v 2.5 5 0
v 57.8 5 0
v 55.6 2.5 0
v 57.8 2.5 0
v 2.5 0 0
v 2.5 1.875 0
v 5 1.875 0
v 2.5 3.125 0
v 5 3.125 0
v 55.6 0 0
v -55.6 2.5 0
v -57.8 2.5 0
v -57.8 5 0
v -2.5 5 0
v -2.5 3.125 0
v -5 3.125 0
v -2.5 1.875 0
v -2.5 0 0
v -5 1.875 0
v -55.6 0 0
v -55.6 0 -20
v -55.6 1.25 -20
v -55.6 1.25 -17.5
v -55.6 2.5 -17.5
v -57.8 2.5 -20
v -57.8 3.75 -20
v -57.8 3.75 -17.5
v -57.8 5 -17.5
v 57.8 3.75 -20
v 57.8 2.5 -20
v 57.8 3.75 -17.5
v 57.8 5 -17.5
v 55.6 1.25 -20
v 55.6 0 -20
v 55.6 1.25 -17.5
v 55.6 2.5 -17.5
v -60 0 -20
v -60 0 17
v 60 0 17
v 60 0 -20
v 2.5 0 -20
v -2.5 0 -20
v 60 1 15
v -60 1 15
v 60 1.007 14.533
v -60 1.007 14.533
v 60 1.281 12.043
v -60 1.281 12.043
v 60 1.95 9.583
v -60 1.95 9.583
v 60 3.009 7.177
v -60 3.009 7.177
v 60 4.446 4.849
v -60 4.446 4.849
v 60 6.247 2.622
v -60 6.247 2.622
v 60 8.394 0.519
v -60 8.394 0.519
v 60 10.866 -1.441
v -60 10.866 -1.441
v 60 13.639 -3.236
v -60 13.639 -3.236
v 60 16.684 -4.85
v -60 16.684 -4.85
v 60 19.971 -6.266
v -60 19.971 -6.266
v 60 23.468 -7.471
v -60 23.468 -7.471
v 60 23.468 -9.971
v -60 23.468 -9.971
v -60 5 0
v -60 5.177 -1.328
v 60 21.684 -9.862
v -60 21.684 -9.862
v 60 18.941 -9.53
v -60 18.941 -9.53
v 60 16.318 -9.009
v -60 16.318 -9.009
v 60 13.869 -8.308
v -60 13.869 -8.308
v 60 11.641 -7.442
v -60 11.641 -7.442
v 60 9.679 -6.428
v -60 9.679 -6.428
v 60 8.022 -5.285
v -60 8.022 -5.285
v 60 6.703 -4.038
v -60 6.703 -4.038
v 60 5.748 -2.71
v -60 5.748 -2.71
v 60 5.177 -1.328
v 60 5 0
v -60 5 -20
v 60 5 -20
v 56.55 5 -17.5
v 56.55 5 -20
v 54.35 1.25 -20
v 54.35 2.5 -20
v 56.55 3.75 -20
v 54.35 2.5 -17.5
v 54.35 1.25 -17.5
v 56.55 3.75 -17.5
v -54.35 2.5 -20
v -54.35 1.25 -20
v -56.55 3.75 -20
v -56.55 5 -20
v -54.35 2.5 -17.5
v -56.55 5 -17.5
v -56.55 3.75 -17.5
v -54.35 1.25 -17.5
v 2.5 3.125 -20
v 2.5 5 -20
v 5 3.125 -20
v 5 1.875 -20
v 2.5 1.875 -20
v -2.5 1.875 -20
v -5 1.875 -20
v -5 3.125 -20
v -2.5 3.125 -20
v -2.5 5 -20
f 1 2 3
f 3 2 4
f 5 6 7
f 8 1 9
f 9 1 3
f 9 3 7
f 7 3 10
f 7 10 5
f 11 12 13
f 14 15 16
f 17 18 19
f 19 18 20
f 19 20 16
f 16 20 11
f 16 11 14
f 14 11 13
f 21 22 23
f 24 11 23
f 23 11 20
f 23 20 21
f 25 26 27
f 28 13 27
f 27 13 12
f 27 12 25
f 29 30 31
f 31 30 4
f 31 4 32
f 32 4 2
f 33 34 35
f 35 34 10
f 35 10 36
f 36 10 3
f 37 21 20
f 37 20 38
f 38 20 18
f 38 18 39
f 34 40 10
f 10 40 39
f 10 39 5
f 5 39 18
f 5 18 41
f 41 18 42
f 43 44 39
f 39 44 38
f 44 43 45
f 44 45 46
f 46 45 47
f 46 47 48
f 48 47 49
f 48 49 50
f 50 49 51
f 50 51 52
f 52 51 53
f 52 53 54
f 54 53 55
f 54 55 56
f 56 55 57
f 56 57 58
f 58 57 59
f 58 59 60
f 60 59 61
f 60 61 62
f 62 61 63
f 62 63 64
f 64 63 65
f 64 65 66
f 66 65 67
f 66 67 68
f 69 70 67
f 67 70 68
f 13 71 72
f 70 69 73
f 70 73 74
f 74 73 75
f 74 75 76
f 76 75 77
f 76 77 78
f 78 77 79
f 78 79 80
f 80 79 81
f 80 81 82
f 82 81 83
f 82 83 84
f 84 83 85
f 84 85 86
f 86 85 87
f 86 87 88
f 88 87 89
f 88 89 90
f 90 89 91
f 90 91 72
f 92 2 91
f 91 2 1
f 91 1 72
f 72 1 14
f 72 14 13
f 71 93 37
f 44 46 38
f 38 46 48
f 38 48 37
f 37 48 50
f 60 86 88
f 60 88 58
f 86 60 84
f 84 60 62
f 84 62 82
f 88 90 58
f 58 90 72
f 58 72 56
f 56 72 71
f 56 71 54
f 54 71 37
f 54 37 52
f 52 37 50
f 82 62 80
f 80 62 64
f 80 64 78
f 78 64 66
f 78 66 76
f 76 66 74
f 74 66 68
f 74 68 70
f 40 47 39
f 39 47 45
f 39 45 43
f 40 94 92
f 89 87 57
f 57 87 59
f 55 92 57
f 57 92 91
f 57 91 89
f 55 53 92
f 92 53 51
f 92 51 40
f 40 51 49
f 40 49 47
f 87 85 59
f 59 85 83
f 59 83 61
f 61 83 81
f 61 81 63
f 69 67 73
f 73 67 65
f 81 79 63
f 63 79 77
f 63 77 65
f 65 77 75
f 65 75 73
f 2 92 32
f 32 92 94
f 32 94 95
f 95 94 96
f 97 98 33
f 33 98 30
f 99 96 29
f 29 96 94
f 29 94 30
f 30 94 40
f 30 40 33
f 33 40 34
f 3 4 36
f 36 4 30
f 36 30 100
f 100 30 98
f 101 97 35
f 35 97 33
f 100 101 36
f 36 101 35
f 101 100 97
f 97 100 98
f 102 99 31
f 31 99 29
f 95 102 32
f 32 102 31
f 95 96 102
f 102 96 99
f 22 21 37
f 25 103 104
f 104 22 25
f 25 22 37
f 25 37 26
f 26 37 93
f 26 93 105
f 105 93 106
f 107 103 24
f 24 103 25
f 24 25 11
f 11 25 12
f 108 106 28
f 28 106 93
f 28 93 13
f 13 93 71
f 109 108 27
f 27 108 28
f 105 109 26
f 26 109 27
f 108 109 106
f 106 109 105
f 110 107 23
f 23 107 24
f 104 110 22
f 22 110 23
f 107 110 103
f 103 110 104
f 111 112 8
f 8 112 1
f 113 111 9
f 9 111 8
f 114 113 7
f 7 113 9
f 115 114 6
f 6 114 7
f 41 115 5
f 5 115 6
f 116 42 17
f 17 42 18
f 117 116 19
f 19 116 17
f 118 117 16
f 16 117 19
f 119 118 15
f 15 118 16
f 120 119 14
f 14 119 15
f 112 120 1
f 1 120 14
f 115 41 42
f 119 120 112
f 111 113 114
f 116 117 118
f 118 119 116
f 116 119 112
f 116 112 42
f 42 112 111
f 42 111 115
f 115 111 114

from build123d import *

# Parameters (mm, degrees)
CUCHILLA_SALIENTE_DEPTH                  = 60
CUCHILLA_SALIENTE_DEPTH_BACK             = 60
ENCAJE_CUCHILLA_LATERAL_CROQUIS_1_W      = 20
ENCAJE_CUCHILLA_LATERAL_CROQUIS_1_H      = 5
ENCAJE_CUCHILLA_LATERAL_SALIENTE_1_DEPTH = 2.2
ENCAJE_CUCHILLA_LATERAL_CROQUIS_2_W      = 20
ENCAJE_CUCHILLA_LATERAL_CROQUIS_2_H      = 2.5
ENCAJE_CUCHILLA_LATERAL_SALIENTE_2_DEPTH = 2.2
ENCAJE_CUCHILLA_LATERAL_CROQUIS_3_W      = 2.5
ENCAJE_CUCHILLA_LATERAL_CROQUIS_3_H      = 1.25
ENCAJE_CUCHILLA_LATERAL_SALIENTE_3_DEPTH = 1.25
ENCAJE_CUCHILLA_LATERAL_CROQUIS_4_W      = 2.5
ENCAJE_CUCHILLA_LATERAL_CROQUIS_4_H      = 1.25
ENCAJE_CUCHILLA_LATERAL_SALIENTE_4_DEPTH = 1.25
ENCAJE_CUCHILLA_LATERAL_CROQUIS_5_W      = 20
ENCAJE_CUCHILLA_LATERAL_CROQUIS_5_H      = 5
ENCAJE_CUCHILLA_LATERAL_SALIENTE_5_DEPTH = 2.2
ENCAJE_CUCHILLA_LATERAL_CROQUIS_6_W      = 20
ENCAJE_CUCHILLA_LATERAL_CROQUIS_6_H      = 2.5
ENCAJE_CUCHILLA_LATERAL_SALIENTE_6_DEPTH = 2.2
ENCAJE_CUCHILLA_LATERAL_CROQUIS_7_W      = 2.5
ENCAJE_CUCHILLA_LATERAL_CROQUIS_7_H      = 1.25
ENCAJE_CUCHILLA_LATERAL_SALIENTE_7_DEPTH = 1.25
ENCAJE_CUCHILLA_LATERAL_CROQUIS_8_W      = 2.5
ENCAJE_CUCHILLA_LATERAL_CROQUIS_8_H      = 1.25
ENCAJE_CUCHILLA_LATERAL_SALIENTE_8_DEPTH = 1.25
ENCAJE_CUCHILLA_CENTRAL_SALIENTE_DEPTH   = 20


with BuildPart() as part:
    # Croquis4 → Cuchilla-Saliente (new, two sides: drawn at the far end of the back side and taken through both)
    with BuildSketch(Plane(origin=(0, 0, 0), x_dir=(0, 0, -1), z_dir=(1, 0, 0)).offset(-CUCHILLA_SALIENTE_DEPTH_BACK)):
        with BuildLine():
            Line((9.97060468, 23.467626264), (7.47060468, 23.467626264))
            add(Edge.make_bspline(
                [(-15, 1), (0.62292895, 1), (7.47060468, 23.467626264)],
                knots=[0, 0, 0, 1.117079483, 1.117079483, 1.117079483], degree=2, weights=[1, 0.848029877, 1]))
            Line((-15, 1), (-17, 0))
            Line((-17, 0), (0, 0))
            Line((0, 0), (0, 5))
            add(Edge.make_bspline(
                [(0, 5), (9.261036245, 5), (9.97060468, 23.467626264)],
                knots=[0, 0, 0, 1.494102477, 1.494102477, 1.494102477], degree=2, weights=[1, 0.733695675, 1]))
        make_face()
    extrude(amount=CUCHILLA_SALIENTE_DEPTH + CUCHILLA_SALIENTE_DEPTH_BACK)

    # Encaje-Cuchilla-Lateral-Croquis-1 → Encaje-Cuchilla-Lateral-Saliente-1 (add)
    with BuildSketch(Plane(origin=(60, 0, 0), x_dir=(0, 0, -1), z_dir=(1, 0, 0))):
        with Locations((10, 2.5)):
            Rectangle(ENCAJE_CUCHILLA_LATERAL_CROQUIS_1_W, ENCAJE_CUCHILLA_LATERAL_CROQUIS_1_H)
    extrude(amount=-ENCAJE_CUCHILLA_LATERAL_SALIENTE_1_DEPTH)

    # Encaje-Cuchilla-Lateral-Croquis-2 → Encaje-Cuchilla-Lateral-Saliente-2 (add)
    with BuildSketch(Plane.ZY.offset(-57.8)):
        with Locations((-10, 1.25)):
            Rectangle(ENCAJE_CUCHILLA_LATERAL_CROQUIS_2_W, ENCAJE_CUCHILLA_LATERAL_CROQUIS_2_H)
    extrude(amount=ENCAJE_CUCHILLA_LATERAL_SALIENTE_2_DEPTH)

    # Encaje-Cuchilla-Lateral-Croquis-3 → Encaje-Cuchilla-Lateral-Saliente-3 (add)
    with BuildSketch(Plane.ZY.offset(-55.6)):
        with Locations((-18.75, 1.875)):
            Rectangle(ENCAJE_CUCHILLA_LATERAL_CROQUIS_3_W, ENCAJE_CUCHILLA_LATERAL_CROQUIS_3_H)
    extrude(amount=ENCAJE_CUCHILLA_LATERAL_SALIENTE_3_DEPTH)

    # Encaje-Cuchilla-Lateral-Croquis-4 → Encaje-Cuchilla-Lateral-Saliente-4 (add)
    with BuildSketch(Plane.ZY.offset(-57.8)):
        with Locations((-18.75, 4.375)):
            Rectangle(ENCAJE_CUCHILLA_LATERAL_CROQUIS_4_W, ENCAJE_CUCHILLA_LATERAL_CROQUIS_4_H)
    extrude(amount=ENCAJE_CUCHILLA_LATERAL_SALIENTE_4_DEPTH)



with BuildPart() as body_2:
    # Encaje-Cuchilla-Lateral-Croquis-5 → Encaje-Cuchilla-Lateral-Saliente-5 (new body)
    with BuildSketch(Plane.ZY.offset(60)):
        with Locations((-10, 2.5)):
            Rectangle(ENCAJE_CUCHILLA_LATERAL_CROQUIS_5_W, ENCAJE_CUCHILLA_LATERAL_CROQUIS_5_H)
    extrude(amount=-ENCAJE_CUCHILLA_LATERAL_SALIENTE_5_DEPTH)


with BuildPart() as part_1:
    add(part.part)

    add(body_2.part)  # Encaje-Cuchilla-Lateral-Saliente-6 merges body 2
    # Encaje-Cuchilla-Lateral-Croquis-6 → Encaje-Cuchilla-Lateral-Saliente-6 (add)
    with BuildSketch(Plane(origin=(-57.8, 0, 0), x_dir=(0, 0, -1), z_dir=(1, 0, 0))):
        with Locations((10, 1.25)):
            Rectangle(ENCAJE_CUCHILLA_LATERAL_CROQUIS_6_W, ENCAJE_CUCHILLA_LATERAL_CROQUIS_6_H)
    extrude(amount=ENCAJE_CUCHILLA_LATERAL_SALIENTE_6_DEPTH)

    # Encaje-Cuchilla-Lateral-Croquis-7 → Encaje-Cuchilla-Lateral-Saliente-7 (add)
    with BuildSketch(Plane(origin=(-57.8, 0, 0), x_dir=(0, 0, -1), z_dir=(1, 0, 0))):
        with Locations((18.75, 4.375)):
            Rectangle(ENCAJE_CUCHILLA_LATERAL_CROQUIS_7_W, ENCAJE_CUCHILLA_LATERAL_CROQUIS_7_H)
    extrude(amount=ENCAJE_CUCHILLA_LATERAL_SALIENTE_7_DEPTH)

    # Encaje-Cuchilla-Lateral-Croquis-8 → Encaje-Cuchilla-Lateral-Saliente-8 (add)
    with BuildSketch(Plane(origin=(-55.6, 0, 0), x_dir=(0, 0, -1), z_dir=(1, 0, 0))):
        with Locations((18.75, 1.875)):
            Rectangle(ENCAJE_CUCHILLA_LATERAL_CROQUIS_8_W, ENCAJE_CUCHILLA_LATERAL_CROQUIS_8_H)
    extrude(amount=ENCAJE_CUCHILLA_LATERAL_SALIENTE_8_DEPTH)

    # Encaje-Cuchilla-Central-Croquis → Encaje-Cuchilla-Central-Saliente (add)
    with BuildSketch(Plane(origin=(0, 0, 0), x_dir=(-1, 0, 0), z_dir=(0, 0, -1))):
        Polygon((2.5, 3.125), (5, 3.125), (5, 1.875), (2.5, 1.875), (2.5, 0), (-2.5, 0), (-2.5, 1.875), (-5, 1.875), (-5, 3.125), (-2.5, 3.125), (-2.5, 5), (2.5, 5), align=None)
    extrude(amount=ENCAJE_CUCHILLA_CENTRAL_SALIENTE_DEPTH)


solid = part_1.part
